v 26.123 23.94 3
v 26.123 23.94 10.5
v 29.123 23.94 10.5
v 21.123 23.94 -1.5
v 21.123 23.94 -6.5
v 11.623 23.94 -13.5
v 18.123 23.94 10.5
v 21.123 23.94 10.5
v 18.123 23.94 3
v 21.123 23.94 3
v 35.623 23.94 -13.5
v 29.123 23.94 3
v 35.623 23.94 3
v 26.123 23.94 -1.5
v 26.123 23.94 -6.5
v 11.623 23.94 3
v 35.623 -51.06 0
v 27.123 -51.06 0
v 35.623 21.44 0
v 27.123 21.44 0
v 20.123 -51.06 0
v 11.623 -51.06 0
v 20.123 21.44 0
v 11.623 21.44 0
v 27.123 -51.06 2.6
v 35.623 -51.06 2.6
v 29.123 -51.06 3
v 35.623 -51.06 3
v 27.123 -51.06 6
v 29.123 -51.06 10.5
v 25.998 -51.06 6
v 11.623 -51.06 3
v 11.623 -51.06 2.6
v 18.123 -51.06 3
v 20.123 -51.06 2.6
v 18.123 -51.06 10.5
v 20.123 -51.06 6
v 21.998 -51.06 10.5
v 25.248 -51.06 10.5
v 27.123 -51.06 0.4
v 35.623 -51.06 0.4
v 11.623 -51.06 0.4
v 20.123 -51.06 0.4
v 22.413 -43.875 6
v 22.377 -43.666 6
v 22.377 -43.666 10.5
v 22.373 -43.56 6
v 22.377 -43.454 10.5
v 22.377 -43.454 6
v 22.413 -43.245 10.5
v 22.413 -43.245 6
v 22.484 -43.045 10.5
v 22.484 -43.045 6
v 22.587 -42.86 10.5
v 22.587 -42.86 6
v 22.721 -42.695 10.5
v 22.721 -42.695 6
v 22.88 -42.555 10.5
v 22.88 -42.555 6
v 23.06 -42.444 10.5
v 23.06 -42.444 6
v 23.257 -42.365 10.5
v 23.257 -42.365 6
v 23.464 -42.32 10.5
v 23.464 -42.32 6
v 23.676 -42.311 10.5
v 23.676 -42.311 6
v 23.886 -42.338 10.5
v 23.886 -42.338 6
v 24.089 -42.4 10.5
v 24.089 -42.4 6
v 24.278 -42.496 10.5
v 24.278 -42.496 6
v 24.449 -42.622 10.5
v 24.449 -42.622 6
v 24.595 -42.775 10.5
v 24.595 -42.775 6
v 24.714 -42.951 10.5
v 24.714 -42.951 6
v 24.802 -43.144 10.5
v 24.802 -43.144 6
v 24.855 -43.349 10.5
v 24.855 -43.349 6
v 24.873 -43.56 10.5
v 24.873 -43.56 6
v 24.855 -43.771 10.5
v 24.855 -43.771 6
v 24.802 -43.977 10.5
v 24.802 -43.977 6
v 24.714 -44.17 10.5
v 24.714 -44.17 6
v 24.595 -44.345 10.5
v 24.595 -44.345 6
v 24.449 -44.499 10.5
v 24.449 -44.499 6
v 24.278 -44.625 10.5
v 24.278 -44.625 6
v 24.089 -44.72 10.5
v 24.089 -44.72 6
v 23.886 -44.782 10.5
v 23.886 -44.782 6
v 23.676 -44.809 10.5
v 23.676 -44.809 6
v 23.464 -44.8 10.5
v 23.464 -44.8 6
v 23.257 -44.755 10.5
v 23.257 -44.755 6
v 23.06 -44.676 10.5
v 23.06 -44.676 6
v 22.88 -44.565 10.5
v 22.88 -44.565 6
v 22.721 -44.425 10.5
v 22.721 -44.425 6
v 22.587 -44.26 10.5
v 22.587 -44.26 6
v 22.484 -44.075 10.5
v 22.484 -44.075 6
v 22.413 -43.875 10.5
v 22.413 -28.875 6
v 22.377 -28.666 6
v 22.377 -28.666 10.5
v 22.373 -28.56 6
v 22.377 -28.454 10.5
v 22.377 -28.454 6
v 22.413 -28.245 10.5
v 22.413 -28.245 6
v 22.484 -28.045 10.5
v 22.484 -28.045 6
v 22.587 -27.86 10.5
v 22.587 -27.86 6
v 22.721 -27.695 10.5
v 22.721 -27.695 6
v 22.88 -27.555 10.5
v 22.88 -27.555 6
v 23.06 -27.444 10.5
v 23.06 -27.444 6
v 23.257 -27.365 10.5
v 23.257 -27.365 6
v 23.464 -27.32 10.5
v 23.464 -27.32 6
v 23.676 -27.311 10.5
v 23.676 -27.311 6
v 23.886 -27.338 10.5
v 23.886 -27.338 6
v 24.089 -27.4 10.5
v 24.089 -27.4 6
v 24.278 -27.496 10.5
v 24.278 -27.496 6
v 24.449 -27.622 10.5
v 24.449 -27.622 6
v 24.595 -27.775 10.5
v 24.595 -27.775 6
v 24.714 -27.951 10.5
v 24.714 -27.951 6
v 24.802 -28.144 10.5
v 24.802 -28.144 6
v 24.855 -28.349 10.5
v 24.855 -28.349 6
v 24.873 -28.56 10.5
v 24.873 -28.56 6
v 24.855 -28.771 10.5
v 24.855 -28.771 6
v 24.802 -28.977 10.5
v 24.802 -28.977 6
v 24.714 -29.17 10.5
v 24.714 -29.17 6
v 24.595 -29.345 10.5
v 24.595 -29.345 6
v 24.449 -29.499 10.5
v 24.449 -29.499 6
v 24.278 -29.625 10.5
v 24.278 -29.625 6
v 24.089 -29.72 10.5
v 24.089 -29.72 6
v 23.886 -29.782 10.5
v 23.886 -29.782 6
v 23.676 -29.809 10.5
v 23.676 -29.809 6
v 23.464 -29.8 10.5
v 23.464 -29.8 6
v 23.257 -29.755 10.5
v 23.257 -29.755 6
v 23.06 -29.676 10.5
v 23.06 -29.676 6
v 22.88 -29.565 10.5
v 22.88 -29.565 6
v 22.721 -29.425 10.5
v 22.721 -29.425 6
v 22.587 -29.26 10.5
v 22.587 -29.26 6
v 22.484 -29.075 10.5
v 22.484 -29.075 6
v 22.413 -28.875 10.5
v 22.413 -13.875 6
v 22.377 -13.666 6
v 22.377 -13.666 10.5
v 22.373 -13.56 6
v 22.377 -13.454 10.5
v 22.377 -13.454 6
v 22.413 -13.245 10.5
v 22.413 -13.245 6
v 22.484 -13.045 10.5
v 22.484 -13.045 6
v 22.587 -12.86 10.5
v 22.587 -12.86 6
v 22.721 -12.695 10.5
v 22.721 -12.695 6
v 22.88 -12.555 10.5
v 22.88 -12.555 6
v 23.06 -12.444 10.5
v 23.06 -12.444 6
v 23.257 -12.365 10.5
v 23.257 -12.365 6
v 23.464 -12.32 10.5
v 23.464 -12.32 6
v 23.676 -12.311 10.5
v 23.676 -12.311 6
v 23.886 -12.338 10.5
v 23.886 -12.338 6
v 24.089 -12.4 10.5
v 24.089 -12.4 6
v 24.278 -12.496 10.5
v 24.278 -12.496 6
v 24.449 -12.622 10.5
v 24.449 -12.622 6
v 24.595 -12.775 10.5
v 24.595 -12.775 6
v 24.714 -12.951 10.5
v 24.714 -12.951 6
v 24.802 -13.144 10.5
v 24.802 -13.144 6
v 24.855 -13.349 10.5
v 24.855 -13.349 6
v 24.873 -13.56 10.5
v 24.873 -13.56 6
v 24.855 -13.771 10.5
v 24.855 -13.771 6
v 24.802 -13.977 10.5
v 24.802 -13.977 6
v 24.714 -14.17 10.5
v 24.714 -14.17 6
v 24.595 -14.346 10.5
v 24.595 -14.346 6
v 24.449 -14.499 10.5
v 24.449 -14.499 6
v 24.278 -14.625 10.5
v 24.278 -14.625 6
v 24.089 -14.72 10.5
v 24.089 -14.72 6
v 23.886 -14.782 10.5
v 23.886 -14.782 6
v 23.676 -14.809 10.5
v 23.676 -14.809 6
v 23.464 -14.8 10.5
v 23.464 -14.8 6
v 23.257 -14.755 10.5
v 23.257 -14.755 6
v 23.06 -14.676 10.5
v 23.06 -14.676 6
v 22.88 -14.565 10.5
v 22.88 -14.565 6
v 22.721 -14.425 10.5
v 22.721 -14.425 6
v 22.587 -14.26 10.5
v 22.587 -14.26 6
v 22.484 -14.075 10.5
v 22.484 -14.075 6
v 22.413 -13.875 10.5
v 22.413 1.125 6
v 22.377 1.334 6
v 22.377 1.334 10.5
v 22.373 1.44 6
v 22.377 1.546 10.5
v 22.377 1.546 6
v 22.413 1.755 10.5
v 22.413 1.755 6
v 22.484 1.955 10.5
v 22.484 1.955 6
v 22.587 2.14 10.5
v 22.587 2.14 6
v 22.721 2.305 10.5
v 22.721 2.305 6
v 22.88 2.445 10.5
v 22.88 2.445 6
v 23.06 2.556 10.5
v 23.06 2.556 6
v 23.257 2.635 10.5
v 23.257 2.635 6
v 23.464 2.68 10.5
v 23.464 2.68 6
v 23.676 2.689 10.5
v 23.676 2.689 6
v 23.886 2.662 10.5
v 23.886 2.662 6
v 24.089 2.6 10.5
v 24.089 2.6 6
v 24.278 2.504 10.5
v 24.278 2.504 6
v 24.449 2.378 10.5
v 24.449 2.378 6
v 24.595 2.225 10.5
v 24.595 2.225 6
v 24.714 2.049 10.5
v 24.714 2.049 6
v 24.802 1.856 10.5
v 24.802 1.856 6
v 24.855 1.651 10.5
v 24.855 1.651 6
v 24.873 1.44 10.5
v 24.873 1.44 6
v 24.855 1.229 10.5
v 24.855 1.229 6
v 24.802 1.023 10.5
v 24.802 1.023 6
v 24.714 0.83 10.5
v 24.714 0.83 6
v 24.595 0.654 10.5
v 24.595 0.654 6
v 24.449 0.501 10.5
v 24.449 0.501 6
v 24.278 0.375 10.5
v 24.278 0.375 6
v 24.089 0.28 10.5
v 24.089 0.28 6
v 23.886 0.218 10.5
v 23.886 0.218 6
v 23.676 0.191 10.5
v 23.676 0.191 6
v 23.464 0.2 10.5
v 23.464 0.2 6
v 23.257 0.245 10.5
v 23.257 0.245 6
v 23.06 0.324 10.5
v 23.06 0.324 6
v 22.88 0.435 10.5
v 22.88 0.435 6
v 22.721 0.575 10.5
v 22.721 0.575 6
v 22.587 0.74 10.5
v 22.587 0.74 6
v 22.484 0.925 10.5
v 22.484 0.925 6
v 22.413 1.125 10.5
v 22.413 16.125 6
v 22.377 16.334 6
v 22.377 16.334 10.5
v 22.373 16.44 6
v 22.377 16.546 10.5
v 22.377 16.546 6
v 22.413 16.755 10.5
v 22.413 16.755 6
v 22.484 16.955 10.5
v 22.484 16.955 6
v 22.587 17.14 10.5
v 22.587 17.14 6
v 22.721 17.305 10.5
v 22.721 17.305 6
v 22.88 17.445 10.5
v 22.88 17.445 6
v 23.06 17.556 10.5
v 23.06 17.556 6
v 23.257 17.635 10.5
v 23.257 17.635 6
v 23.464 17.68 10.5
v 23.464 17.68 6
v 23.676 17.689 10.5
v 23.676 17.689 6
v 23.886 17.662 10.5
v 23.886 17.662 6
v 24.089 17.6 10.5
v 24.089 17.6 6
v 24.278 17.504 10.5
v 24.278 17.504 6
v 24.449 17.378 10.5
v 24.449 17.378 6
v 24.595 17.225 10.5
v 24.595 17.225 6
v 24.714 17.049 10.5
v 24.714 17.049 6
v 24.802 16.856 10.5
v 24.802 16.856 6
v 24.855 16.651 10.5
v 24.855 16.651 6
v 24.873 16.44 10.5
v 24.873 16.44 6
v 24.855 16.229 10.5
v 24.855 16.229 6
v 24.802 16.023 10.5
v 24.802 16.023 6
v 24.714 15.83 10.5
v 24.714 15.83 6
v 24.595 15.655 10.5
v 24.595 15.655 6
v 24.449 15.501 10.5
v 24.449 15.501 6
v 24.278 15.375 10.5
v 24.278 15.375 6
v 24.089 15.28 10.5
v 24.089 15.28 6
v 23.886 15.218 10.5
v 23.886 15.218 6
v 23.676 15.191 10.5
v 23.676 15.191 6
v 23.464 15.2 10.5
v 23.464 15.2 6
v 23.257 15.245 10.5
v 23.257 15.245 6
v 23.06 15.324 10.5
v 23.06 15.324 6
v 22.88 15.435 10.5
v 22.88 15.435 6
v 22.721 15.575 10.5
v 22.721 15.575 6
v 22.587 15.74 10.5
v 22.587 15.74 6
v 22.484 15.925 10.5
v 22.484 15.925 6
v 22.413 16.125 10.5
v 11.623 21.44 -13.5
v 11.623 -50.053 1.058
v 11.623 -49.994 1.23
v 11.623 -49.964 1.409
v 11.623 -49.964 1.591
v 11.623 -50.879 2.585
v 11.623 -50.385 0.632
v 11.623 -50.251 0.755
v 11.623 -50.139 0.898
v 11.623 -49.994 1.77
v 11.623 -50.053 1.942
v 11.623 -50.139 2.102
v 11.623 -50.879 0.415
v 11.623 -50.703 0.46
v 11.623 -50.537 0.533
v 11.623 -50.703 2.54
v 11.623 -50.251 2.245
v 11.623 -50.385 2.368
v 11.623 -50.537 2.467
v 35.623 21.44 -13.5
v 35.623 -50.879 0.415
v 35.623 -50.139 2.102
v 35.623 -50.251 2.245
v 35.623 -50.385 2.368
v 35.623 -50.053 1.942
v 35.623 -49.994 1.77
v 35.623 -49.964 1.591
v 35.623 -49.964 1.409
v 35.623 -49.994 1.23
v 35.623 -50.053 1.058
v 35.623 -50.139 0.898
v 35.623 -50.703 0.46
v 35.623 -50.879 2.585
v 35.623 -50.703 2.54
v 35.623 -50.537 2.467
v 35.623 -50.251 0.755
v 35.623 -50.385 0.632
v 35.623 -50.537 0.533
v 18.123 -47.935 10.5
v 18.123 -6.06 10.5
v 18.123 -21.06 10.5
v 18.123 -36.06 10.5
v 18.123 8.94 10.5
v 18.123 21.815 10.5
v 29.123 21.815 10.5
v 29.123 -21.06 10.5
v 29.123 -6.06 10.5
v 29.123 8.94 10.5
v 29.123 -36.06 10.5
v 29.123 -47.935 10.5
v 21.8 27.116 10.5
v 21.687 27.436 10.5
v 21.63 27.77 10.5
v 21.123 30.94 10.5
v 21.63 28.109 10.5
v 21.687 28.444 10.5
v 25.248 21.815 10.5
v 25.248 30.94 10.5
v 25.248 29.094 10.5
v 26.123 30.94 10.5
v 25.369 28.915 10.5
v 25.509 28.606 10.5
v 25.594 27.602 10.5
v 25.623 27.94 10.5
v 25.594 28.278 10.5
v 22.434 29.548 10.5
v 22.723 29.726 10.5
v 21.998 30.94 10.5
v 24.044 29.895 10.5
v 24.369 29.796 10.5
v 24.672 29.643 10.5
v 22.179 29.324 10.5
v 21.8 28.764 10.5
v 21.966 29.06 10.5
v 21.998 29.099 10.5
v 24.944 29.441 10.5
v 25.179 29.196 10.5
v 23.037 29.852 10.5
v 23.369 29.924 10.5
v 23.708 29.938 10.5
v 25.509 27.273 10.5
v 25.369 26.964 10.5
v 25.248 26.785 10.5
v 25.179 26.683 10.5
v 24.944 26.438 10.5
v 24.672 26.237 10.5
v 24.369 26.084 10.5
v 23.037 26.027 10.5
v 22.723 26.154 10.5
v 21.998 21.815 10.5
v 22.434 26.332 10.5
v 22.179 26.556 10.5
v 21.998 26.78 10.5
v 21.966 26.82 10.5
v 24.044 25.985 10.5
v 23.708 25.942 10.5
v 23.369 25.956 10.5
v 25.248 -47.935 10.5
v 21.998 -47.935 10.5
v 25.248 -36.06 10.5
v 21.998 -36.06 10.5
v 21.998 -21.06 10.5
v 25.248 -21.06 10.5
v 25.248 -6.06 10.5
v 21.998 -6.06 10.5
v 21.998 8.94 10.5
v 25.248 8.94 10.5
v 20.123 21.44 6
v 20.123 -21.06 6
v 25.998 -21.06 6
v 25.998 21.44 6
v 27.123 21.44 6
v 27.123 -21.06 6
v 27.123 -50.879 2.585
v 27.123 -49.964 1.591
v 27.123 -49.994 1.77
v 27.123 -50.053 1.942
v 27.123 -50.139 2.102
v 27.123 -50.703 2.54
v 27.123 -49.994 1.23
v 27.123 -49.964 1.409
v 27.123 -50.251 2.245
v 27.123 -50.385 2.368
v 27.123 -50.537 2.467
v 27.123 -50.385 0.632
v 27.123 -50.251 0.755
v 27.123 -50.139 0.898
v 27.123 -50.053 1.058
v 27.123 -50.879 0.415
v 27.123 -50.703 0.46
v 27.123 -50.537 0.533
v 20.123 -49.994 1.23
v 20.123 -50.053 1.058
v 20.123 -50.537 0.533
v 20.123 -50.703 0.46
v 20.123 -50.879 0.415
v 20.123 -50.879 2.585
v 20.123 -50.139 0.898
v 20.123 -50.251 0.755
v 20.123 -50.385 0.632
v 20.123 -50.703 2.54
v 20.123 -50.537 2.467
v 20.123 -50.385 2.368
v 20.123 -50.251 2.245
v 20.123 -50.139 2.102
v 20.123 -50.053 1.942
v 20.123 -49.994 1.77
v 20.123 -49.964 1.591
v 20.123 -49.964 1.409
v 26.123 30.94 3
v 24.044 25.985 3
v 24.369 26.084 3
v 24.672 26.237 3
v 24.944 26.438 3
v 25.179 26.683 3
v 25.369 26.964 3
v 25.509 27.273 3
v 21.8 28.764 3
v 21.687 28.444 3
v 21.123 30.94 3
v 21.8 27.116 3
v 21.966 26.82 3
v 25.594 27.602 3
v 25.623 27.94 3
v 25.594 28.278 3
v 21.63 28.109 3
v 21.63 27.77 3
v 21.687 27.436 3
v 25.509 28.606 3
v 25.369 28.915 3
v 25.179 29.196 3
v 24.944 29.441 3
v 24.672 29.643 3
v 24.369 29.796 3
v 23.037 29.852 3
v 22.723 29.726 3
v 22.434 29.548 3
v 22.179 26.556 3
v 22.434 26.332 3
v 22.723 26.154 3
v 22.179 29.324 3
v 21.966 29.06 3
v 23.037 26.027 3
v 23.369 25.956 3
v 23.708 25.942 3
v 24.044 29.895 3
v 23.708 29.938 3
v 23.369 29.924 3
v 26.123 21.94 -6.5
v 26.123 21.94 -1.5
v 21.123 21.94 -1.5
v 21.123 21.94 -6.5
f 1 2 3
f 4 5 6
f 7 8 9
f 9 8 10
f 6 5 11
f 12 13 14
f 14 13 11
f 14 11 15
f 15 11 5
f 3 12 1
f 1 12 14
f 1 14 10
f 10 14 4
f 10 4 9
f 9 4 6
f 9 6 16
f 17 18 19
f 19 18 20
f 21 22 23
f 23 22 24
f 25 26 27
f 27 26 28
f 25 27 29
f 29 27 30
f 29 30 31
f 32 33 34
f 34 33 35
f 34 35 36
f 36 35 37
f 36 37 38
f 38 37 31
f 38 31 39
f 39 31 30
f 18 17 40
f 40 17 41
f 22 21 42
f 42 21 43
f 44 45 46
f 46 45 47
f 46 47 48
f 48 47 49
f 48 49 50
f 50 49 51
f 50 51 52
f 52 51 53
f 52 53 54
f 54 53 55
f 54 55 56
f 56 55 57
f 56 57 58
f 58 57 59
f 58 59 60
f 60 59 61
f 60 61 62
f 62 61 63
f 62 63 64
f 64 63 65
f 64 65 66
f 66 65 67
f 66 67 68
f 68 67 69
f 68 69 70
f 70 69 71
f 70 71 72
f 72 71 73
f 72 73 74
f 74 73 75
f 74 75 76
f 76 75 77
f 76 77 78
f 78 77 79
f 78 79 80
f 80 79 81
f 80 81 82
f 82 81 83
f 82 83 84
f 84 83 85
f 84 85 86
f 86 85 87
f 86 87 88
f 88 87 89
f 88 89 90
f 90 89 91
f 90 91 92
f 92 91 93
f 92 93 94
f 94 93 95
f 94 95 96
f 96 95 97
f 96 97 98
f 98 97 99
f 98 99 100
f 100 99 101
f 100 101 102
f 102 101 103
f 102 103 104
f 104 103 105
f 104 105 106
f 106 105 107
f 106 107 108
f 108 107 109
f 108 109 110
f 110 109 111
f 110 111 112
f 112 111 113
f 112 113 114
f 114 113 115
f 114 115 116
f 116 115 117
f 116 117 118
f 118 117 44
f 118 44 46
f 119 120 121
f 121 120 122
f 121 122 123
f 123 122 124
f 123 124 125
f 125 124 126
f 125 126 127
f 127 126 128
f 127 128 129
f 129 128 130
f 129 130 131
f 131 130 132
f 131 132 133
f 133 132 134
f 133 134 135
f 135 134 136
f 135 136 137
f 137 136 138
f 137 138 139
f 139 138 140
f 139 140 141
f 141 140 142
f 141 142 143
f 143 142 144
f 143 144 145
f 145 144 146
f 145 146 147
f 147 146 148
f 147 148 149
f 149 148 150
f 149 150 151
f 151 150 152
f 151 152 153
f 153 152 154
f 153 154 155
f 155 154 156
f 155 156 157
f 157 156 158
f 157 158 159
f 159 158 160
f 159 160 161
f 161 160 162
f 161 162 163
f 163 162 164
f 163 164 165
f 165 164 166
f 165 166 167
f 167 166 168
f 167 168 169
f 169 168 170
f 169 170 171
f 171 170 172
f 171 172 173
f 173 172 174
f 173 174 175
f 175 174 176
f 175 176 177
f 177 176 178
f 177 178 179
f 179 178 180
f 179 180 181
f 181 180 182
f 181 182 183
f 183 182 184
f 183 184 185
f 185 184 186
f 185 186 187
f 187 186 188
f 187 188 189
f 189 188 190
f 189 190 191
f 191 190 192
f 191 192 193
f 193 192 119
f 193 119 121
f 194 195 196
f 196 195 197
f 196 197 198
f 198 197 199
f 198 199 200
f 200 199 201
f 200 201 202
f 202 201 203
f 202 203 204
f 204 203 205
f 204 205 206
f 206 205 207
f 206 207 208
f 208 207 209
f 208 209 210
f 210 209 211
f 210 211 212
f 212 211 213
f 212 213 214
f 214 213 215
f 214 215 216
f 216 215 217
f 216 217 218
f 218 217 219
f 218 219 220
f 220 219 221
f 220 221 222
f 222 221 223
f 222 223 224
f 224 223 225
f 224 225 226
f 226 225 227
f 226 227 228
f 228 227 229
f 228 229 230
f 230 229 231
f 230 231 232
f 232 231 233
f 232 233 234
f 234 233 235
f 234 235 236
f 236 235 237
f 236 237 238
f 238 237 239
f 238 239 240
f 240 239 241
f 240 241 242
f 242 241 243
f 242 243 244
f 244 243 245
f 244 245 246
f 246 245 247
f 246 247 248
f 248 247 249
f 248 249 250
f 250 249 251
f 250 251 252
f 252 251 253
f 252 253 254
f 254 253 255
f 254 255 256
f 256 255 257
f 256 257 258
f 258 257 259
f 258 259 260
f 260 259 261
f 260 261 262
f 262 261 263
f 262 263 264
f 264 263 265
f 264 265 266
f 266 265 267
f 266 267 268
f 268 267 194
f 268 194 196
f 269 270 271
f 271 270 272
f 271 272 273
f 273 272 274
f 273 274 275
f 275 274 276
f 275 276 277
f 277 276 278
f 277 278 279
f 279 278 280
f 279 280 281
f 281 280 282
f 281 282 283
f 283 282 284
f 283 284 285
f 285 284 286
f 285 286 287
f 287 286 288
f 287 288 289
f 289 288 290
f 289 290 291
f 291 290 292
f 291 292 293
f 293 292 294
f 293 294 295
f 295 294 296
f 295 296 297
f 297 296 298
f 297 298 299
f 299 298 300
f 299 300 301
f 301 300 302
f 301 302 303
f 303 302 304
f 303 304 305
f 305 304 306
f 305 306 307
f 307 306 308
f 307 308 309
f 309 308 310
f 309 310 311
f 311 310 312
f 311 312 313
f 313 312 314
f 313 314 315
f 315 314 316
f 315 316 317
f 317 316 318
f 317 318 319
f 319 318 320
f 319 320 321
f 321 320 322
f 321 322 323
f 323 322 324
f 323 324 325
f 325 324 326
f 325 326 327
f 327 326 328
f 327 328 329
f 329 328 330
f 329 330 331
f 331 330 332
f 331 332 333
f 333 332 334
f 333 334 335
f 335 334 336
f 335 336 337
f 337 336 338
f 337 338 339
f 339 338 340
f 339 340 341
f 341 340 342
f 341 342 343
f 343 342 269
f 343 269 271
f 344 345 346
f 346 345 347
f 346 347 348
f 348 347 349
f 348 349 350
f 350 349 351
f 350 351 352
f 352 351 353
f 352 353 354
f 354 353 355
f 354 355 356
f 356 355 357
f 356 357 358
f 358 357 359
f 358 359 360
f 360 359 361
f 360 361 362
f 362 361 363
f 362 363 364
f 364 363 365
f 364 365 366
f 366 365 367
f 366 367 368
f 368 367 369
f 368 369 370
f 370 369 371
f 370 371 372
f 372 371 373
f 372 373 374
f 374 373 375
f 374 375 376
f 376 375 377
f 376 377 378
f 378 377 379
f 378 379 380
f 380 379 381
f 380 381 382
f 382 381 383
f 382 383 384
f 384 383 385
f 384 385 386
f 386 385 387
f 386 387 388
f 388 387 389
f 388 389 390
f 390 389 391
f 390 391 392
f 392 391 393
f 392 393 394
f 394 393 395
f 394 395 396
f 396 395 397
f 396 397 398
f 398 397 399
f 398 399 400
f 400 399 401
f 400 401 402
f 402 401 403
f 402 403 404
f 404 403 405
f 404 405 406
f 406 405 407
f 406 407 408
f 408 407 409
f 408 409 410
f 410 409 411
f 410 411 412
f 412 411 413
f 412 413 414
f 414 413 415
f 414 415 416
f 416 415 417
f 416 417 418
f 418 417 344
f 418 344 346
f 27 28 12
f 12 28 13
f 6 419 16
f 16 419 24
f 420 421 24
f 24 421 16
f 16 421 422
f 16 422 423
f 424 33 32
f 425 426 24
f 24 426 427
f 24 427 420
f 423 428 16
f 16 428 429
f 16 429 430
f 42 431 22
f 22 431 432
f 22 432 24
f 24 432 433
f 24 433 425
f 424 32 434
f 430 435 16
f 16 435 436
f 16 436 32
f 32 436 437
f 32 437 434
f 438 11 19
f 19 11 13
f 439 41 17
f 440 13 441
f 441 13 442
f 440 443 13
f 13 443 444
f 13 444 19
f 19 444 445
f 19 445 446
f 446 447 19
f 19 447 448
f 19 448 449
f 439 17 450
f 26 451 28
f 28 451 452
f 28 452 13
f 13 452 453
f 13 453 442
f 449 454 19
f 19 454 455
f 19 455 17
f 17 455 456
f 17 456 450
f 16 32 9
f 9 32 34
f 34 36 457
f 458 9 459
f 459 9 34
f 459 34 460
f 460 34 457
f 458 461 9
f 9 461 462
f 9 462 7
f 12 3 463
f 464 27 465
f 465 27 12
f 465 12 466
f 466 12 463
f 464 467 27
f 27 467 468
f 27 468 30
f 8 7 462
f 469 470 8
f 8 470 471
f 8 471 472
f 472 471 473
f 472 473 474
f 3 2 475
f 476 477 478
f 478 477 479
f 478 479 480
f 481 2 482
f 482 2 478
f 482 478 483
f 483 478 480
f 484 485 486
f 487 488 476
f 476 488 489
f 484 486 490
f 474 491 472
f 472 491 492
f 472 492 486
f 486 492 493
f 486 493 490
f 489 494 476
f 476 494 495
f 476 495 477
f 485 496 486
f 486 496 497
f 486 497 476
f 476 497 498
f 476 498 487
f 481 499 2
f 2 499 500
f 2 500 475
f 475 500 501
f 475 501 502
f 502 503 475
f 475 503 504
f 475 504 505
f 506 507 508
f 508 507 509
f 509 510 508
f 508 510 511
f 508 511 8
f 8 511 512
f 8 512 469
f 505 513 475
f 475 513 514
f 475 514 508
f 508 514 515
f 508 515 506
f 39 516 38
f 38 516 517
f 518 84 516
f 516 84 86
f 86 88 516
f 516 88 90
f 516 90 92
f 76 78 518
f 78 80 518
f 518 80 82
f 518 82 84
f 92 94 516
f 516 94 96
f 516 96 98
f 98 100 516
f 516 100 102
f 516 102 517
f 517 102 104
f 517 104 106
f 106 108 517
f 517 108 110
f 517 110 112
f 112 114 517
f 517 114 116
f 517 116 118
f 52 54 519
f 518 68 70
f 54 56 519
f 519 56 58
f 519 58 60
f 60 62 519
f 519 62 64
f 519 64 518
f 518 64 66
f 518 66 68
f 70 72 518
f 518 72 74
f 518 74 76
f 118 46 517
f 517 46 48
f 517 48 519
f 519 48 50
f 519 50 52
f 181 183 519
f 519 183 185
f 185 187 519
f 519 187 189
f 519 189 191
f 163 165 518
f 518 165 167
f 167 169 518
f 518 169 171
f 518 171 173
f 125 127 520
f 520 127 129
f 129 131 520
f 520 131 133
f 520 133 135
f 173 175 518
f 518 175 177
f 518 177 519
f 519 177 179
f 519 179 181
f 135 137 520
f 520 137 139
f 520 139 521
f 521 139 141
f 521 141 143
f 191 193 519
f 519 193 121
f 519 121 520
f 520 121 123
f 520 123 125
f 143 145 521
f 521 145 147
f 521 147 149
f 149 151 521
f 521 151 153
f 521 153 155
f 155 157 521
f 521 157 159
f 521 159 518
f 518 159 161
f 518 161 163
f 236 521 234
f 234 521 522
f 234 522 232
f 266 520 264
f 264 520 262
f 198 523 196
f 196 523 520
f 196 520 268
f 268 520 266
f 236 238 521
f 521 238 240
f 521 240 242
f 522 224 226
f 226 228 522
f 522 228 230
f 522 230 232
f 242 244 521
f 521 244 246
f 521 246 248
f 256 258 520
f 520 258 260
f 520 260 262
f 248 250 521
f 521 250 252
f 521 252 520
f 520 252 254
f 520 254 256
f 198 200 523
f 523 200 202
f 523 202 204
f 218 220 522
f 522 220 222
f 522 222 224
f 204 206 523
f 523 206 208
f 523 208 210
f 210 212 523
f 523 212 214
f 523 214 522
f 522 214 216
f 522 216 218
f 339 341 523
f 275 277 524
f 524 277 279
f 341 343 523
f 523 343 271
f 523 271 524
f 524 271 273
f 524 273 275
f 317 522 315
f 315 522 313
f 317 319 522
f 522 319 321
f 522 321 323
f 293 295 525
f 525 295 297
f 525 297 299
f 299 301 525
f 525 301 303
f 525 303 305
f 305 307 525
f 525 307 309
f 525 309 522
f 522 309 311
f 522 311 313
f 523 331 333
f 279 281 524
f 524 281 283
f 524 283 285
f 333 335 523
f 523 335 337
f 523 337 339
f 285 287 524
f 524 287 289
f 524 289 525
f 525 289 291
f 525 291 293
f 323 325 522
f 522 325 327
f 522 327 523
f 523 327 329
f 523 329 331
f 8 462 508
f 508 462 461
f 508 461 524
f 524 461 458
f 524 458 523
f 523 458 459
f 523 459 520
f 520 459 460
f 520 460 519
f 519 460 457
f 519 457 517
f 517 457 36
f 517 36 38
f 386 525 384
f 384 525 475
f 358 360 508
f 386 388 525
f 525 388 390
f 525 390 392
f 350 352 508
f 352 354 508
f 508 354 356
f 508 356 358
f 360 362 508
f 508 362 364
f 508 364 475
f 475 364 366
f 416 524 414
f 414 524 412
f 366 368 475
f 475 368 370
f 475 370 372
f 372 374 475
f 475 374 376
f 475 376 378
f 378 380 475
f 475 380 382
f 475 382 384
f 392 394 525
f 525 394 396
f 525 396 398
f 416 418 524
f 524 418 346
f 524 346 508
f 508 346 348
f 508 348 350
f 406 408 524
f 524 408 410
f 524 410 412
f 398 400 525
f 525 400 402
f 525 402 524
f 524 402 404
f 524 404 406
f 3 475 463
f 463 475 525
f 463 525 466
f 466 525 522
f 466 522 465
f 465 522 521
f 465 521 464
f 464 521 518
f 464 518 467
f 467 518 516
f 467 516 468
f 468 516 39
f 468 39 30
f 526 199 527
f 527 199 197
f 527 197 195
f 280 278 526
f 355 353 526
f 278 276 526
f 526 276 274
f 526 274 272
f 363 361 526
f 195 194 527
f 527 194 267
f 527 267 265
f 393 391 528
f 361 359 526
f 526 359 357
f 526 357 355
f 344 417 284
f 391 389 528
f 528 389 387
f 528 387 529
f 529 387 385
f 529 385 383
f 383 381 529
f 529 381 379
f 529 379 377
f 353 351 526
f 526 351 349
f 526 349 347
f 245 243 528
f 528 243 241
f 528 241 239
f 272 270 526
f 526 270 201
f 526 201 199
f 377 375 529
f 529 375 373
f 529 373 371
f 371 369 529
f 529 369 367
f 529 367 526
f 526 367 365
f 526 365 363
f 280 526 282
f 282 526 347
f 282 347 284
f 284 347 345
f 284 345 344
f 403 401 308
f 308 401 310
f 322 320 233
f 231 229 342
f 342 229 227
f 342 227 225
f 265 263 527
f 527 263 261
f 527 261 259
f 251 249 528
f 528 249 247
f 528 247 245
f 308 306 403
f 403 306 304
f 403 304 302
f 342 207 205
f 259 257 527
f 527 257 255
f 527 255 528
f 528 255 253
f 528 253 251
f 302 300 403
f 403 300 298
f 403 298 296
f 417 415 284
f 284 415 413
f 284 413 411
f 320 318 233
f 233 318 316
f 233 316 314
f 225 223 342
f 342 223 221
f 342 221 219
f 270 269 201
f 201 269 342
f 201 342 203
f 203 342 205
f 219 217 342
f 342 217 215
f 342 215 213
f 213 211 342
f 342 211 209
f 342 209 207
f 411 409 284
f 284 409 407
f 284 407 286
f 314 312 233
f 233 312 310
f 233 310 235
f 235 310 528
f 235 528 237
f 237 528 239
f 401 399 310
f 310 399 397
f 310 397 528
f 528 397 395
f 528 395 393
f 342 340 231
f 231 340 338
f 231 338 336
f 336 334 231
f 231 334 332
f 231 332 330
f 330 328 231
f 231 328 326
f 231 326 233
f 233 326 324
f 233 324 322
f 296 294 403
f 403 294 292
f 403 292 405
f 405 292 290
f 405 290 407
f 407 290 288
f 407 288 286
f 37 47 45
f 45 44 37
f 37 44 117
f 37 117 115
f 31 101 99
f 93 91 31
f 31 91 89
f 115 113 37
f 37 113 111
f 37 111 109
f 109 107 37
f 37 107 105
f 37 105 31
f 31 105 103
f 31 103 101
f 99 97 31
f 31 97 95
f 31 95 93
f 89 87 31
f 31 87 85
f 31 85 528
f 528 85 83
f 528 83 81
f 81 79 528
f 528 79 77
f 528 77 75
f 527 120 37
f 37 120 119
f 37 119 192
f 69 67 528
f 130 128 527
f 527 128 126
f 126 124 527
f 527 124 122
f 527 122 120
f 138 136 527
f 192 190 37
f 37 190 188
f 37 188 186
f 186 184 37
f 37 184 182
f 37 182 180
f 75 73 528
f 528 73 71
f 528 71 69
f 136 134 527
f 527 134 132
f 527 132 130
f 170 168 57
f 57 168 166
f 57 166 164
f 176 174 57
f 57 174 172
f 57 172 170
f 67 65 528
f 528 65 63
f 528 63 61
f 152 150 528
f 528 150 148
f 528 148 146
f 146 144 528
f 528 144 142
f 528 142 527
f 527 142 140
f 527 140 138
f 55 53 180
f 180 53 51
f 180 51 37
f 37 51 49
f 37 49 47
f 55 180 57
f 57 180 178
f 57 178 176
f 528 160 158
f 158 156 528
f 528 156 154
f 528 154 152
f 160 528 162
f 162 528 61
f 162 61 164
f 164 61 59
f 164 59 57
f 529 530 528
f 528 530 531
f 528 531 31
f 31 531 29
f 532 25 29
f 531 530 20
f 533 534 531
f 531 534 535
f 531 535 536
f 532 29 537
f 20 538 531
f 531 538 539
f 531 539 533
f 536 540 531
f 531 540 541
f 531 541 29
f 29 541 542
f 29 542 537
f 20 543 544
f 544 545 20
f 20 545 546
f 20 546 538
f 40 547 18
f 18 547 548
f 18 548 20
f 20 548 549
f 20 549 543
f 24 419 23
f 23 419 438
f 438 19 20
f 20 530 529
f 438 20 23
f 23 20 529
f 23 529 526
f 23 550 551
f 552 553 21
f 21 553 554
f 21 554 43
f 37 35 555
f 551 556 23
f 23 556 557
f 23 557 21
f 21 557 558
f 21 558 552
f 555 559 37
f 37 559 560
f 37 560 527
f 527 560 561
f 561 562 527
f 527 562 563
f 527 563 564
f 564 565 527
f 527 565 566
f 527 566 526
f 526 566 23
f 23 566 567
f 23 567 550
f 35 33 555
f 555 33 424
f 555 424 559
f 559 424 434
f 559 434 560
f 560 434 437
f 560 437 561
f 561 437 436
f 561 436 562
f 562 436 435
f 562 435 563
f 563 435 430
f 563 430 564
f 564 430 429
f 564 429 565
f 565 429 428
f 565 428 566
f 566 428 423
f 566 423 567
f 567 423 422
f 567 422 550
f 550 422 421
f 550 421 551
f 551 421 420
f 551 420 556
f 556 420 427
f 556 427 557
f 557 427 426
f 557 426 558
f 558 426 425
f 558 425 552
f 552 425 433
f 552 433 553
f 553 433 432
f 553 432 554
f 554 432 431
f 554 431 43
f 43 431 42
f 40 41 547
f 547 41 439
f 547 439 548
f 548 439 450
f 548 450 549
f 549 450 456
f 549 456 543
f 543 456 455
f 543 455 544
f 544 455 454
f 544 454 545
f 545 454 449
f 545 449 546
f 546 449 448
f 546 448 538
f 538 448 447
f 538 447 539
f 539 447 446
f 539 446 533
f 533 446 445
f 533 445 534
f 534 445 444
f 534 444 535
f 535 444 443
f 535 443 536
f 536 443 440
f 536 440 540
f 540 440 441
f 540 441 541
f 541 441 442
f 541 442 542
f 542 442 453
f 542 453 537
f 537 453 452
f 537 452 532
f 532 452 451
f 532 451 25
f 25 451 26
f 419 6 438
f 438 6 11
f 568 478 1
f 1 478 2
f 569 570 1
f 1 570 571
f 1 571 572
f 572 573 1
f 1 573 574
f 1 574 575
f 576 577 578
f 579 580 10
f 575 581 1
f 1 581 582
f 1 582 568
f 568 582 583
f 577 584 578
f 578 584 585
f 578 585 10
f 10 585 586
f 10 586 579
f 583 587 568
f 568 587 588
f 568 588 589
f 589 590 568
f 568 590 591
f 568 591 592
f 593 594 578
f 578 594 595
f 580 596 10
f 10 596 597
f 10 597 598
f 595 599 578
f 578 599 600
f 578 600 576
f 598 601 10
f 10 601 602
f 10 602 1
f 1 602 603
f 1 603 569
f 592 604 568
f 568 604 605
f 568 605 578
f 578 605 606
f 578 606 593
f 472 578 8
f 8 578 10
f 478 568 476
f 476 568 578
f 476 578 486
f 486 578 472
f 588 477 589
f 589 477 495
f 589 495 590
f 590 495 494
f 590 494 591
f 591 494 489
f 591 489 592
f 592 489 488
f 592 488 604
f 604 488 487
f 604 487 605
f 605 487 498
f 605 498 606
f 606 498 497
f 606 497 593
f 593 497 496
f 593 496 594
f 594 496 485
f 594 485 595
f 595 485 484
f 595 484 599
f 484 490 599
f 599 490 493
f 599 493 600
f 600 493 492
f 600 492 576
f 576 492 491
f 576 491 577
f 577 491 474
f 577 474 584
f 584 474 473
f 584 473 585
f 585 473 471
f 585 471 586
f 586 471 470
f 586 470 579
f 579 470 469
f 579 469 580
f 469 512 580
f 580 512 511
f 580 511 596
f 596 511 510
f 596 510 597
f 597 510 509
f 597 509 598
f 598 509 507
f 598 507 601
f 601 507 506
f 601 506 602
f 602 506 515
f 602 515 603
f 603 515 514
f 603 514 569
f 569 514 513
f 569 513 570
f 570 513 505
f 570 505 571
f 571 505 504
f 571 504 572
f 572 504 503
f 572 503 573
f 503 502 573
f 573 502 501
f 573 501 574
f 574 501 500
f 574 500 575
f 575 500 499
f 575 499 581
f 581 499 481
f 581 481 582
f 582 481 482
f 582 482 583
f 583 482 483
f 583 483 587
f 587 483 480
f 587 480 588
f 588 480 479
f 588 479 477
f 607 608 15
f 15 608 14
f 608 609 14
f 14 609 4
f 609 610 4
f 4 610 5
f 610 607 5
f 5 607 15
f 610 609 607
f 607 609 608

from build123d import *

# Parameters (mm, degrees)
SKETCH1_W                   = 24
SKETCH1_H                   = 75
BOSS_EXTRUDE1_DEPTH         = 3
SKETCH2_W                   = 11
SKETCH2_H                   = 75
BOSS_EXTRUDE2_DEPTH         = 7.5
TAP_DRILL_FOR_M3X0_5_TAP1_D = 2.5
SKETCH5_W                   = 7
SKETCH5_H                   = 72.5
CUT_EXTRUDE1_DEPTH          = 6
CUT_LOFT1_START             = 11.622950039
CUT_LOFT1_DEPTH             = 8.5
CUT_LOFT5_START             = 27.122950039
CUT_LOFT5_DEPTH             = 8.5
SKETCH16_W                  = 24
SKETCH16_H                  = 2.5
BOSS_EXTRUDE4_DEPTH         = 13.5
SKETCH17_W                  = 5
SKETCH17_H                  = 7.5
BOSS_EXTRUDE5_DEPTH         = 7
SKETCH18_R                  = 2
CUT_EXTRUDE2_DEPTH          = 7.5
SKETCH20_W                  = 5
SKETCH20_H                  = 5
CUT_EXTRUDE3_DEPTH          = 2


# Read off the part's stored shape, not the designer's step: Cut-Loft1, Cut-Loft5
with BuildPart() as part:
    # Sketch1 → Boss-Extrude1 (new body)
    with BuildSketch(Plane.XY):
        with Locations((23.622950039, -13.56022481)):
            Rectangle(SKETCH1_W, SKETCH1_H)
    extrude(amount=BOSS_EXTRUDE1_DEPTH)

    # Sketch2 → Boss-Extrude2 (add)
    with BuildSketch(Plane.XY.offset(3)):
        with Locations((23.622950039, -13.56022481)):
            Rectangle(SKETCH2_W, SKETCH2_H)
    extrude(amount=BOSS_EXTRUDE2_DEPTH)

    # Tap Drill for M3x0.5 Tap1 (through all)
    with Locations(Plane(origin=(23.622950039, 16.43977519, 10.5), x_dir=(1, 0, 0), z_dir=(0, 0, 1))):
        with Locations((0, 0), (0, -15), (0, -30), (0, -45), (0, -60)):
            Hole(TAP_DRILL_FOR_M3X0_5_TAP1_D / 2)

    # Sketch5 → Cut-Extrude1 (cut)
    with BuildSketch(Plane(origin=(0, 0, 0), x_dir=(-1, 0, 0), z_dir=(0, 0, -1))):
        with Locations((-23.622950039, -14.81022481)):
            Rectangle(SKETCH5_W, SKETCH5_H)
    extrude(amount=-CUT_EXTRUDE1_DEPTH, mode=Mode.SUBTRACT)

    # Cut-Loft1 outline → Cut-Loft1 (cut)
    with BuildSketch(Plane.YZ.offset(CUT_LOFT1_START)):
        with BuildLine():
            ThreePointArc((-51.06022481, 0.4), (-49.96022481, 1.5), (-51.06022481, 2.6))
            Line((-51.06022481, 2.6), (-51.06022481, 0.4))
        make_face()
    extrude(amount=CUT_LOFT1_DEPTH, mode=Mode.SUBTRACT)

    # Cut-Loft5 outline → Cut-Loft5 (cut)
    with BuildSketch(Plane.YZ.offset(CUT_LOFT5_START)):
        with BuildLine():
            Line((-51.06022481, 2.6), (-51.06022481, 0.4))
            ThreePointArc((-51.06022481, 0.4), (-49.96022481, 1.5), (-51.06022481, 2.6))
        make_face()
    extrude(amount=CUT_LOFT5_DEPTH, mode=Mode.SUBTRACT)

    # Sketch16 → Boss-Extrude4 (add)
    with BuildSketch(Plane(origin=(0, 0, 0), x_dir=(-1, 0, 0), z_dir=(0, 0, -1))):
        with Locations((-23.622950039, 22.68977519)):
            Rectangle(SKETCH16_W, SKETCH16_H)
    extrude(amount=BOSS_EXTRUDE4_DEPTH)

    # Sketch17 → Boss-Extrude5 (add)
    with BuildSketch(Plane(origin=(0, 23.93977519, 0), x_dir=(1, 0, 0), z_dir=(0, 1, 0))):
        with Locations((23.622950039, -6.75)):
            Rectangle(SKETCH17_W, SKETCH17_H)
    extrude(amount=BOSS_EXTRUDE5_DEPTH)

    # Sketch18 → Cut-Extrude2 (cut)
    with BuildSketch(Plane.XY.offset(10.5)):
        with Locations((23.622950039, 27.93977519)):
            Circle(SKETCH18_R)
    extrude(amount=-CUT_EXTRUDE2_DEPTH, mode=Mode.SUBTRACT)

    # Sketch20 → Cut-Extrude3 (cut)
    with BuildSketch(Plane(origin=(0, 23.93977519, 0), x_dir=(1, 0, 0), z_dir=(0, 1, 0))):
        with Locations((23.622950039, 4)):
            Rectangle(SKETCH20_W, SKETCH20_H)
    extrude(amount=-CUT_EXTRUDE3_DEPTH, mode=Mode.SUBTRACT)


solid = part.part
